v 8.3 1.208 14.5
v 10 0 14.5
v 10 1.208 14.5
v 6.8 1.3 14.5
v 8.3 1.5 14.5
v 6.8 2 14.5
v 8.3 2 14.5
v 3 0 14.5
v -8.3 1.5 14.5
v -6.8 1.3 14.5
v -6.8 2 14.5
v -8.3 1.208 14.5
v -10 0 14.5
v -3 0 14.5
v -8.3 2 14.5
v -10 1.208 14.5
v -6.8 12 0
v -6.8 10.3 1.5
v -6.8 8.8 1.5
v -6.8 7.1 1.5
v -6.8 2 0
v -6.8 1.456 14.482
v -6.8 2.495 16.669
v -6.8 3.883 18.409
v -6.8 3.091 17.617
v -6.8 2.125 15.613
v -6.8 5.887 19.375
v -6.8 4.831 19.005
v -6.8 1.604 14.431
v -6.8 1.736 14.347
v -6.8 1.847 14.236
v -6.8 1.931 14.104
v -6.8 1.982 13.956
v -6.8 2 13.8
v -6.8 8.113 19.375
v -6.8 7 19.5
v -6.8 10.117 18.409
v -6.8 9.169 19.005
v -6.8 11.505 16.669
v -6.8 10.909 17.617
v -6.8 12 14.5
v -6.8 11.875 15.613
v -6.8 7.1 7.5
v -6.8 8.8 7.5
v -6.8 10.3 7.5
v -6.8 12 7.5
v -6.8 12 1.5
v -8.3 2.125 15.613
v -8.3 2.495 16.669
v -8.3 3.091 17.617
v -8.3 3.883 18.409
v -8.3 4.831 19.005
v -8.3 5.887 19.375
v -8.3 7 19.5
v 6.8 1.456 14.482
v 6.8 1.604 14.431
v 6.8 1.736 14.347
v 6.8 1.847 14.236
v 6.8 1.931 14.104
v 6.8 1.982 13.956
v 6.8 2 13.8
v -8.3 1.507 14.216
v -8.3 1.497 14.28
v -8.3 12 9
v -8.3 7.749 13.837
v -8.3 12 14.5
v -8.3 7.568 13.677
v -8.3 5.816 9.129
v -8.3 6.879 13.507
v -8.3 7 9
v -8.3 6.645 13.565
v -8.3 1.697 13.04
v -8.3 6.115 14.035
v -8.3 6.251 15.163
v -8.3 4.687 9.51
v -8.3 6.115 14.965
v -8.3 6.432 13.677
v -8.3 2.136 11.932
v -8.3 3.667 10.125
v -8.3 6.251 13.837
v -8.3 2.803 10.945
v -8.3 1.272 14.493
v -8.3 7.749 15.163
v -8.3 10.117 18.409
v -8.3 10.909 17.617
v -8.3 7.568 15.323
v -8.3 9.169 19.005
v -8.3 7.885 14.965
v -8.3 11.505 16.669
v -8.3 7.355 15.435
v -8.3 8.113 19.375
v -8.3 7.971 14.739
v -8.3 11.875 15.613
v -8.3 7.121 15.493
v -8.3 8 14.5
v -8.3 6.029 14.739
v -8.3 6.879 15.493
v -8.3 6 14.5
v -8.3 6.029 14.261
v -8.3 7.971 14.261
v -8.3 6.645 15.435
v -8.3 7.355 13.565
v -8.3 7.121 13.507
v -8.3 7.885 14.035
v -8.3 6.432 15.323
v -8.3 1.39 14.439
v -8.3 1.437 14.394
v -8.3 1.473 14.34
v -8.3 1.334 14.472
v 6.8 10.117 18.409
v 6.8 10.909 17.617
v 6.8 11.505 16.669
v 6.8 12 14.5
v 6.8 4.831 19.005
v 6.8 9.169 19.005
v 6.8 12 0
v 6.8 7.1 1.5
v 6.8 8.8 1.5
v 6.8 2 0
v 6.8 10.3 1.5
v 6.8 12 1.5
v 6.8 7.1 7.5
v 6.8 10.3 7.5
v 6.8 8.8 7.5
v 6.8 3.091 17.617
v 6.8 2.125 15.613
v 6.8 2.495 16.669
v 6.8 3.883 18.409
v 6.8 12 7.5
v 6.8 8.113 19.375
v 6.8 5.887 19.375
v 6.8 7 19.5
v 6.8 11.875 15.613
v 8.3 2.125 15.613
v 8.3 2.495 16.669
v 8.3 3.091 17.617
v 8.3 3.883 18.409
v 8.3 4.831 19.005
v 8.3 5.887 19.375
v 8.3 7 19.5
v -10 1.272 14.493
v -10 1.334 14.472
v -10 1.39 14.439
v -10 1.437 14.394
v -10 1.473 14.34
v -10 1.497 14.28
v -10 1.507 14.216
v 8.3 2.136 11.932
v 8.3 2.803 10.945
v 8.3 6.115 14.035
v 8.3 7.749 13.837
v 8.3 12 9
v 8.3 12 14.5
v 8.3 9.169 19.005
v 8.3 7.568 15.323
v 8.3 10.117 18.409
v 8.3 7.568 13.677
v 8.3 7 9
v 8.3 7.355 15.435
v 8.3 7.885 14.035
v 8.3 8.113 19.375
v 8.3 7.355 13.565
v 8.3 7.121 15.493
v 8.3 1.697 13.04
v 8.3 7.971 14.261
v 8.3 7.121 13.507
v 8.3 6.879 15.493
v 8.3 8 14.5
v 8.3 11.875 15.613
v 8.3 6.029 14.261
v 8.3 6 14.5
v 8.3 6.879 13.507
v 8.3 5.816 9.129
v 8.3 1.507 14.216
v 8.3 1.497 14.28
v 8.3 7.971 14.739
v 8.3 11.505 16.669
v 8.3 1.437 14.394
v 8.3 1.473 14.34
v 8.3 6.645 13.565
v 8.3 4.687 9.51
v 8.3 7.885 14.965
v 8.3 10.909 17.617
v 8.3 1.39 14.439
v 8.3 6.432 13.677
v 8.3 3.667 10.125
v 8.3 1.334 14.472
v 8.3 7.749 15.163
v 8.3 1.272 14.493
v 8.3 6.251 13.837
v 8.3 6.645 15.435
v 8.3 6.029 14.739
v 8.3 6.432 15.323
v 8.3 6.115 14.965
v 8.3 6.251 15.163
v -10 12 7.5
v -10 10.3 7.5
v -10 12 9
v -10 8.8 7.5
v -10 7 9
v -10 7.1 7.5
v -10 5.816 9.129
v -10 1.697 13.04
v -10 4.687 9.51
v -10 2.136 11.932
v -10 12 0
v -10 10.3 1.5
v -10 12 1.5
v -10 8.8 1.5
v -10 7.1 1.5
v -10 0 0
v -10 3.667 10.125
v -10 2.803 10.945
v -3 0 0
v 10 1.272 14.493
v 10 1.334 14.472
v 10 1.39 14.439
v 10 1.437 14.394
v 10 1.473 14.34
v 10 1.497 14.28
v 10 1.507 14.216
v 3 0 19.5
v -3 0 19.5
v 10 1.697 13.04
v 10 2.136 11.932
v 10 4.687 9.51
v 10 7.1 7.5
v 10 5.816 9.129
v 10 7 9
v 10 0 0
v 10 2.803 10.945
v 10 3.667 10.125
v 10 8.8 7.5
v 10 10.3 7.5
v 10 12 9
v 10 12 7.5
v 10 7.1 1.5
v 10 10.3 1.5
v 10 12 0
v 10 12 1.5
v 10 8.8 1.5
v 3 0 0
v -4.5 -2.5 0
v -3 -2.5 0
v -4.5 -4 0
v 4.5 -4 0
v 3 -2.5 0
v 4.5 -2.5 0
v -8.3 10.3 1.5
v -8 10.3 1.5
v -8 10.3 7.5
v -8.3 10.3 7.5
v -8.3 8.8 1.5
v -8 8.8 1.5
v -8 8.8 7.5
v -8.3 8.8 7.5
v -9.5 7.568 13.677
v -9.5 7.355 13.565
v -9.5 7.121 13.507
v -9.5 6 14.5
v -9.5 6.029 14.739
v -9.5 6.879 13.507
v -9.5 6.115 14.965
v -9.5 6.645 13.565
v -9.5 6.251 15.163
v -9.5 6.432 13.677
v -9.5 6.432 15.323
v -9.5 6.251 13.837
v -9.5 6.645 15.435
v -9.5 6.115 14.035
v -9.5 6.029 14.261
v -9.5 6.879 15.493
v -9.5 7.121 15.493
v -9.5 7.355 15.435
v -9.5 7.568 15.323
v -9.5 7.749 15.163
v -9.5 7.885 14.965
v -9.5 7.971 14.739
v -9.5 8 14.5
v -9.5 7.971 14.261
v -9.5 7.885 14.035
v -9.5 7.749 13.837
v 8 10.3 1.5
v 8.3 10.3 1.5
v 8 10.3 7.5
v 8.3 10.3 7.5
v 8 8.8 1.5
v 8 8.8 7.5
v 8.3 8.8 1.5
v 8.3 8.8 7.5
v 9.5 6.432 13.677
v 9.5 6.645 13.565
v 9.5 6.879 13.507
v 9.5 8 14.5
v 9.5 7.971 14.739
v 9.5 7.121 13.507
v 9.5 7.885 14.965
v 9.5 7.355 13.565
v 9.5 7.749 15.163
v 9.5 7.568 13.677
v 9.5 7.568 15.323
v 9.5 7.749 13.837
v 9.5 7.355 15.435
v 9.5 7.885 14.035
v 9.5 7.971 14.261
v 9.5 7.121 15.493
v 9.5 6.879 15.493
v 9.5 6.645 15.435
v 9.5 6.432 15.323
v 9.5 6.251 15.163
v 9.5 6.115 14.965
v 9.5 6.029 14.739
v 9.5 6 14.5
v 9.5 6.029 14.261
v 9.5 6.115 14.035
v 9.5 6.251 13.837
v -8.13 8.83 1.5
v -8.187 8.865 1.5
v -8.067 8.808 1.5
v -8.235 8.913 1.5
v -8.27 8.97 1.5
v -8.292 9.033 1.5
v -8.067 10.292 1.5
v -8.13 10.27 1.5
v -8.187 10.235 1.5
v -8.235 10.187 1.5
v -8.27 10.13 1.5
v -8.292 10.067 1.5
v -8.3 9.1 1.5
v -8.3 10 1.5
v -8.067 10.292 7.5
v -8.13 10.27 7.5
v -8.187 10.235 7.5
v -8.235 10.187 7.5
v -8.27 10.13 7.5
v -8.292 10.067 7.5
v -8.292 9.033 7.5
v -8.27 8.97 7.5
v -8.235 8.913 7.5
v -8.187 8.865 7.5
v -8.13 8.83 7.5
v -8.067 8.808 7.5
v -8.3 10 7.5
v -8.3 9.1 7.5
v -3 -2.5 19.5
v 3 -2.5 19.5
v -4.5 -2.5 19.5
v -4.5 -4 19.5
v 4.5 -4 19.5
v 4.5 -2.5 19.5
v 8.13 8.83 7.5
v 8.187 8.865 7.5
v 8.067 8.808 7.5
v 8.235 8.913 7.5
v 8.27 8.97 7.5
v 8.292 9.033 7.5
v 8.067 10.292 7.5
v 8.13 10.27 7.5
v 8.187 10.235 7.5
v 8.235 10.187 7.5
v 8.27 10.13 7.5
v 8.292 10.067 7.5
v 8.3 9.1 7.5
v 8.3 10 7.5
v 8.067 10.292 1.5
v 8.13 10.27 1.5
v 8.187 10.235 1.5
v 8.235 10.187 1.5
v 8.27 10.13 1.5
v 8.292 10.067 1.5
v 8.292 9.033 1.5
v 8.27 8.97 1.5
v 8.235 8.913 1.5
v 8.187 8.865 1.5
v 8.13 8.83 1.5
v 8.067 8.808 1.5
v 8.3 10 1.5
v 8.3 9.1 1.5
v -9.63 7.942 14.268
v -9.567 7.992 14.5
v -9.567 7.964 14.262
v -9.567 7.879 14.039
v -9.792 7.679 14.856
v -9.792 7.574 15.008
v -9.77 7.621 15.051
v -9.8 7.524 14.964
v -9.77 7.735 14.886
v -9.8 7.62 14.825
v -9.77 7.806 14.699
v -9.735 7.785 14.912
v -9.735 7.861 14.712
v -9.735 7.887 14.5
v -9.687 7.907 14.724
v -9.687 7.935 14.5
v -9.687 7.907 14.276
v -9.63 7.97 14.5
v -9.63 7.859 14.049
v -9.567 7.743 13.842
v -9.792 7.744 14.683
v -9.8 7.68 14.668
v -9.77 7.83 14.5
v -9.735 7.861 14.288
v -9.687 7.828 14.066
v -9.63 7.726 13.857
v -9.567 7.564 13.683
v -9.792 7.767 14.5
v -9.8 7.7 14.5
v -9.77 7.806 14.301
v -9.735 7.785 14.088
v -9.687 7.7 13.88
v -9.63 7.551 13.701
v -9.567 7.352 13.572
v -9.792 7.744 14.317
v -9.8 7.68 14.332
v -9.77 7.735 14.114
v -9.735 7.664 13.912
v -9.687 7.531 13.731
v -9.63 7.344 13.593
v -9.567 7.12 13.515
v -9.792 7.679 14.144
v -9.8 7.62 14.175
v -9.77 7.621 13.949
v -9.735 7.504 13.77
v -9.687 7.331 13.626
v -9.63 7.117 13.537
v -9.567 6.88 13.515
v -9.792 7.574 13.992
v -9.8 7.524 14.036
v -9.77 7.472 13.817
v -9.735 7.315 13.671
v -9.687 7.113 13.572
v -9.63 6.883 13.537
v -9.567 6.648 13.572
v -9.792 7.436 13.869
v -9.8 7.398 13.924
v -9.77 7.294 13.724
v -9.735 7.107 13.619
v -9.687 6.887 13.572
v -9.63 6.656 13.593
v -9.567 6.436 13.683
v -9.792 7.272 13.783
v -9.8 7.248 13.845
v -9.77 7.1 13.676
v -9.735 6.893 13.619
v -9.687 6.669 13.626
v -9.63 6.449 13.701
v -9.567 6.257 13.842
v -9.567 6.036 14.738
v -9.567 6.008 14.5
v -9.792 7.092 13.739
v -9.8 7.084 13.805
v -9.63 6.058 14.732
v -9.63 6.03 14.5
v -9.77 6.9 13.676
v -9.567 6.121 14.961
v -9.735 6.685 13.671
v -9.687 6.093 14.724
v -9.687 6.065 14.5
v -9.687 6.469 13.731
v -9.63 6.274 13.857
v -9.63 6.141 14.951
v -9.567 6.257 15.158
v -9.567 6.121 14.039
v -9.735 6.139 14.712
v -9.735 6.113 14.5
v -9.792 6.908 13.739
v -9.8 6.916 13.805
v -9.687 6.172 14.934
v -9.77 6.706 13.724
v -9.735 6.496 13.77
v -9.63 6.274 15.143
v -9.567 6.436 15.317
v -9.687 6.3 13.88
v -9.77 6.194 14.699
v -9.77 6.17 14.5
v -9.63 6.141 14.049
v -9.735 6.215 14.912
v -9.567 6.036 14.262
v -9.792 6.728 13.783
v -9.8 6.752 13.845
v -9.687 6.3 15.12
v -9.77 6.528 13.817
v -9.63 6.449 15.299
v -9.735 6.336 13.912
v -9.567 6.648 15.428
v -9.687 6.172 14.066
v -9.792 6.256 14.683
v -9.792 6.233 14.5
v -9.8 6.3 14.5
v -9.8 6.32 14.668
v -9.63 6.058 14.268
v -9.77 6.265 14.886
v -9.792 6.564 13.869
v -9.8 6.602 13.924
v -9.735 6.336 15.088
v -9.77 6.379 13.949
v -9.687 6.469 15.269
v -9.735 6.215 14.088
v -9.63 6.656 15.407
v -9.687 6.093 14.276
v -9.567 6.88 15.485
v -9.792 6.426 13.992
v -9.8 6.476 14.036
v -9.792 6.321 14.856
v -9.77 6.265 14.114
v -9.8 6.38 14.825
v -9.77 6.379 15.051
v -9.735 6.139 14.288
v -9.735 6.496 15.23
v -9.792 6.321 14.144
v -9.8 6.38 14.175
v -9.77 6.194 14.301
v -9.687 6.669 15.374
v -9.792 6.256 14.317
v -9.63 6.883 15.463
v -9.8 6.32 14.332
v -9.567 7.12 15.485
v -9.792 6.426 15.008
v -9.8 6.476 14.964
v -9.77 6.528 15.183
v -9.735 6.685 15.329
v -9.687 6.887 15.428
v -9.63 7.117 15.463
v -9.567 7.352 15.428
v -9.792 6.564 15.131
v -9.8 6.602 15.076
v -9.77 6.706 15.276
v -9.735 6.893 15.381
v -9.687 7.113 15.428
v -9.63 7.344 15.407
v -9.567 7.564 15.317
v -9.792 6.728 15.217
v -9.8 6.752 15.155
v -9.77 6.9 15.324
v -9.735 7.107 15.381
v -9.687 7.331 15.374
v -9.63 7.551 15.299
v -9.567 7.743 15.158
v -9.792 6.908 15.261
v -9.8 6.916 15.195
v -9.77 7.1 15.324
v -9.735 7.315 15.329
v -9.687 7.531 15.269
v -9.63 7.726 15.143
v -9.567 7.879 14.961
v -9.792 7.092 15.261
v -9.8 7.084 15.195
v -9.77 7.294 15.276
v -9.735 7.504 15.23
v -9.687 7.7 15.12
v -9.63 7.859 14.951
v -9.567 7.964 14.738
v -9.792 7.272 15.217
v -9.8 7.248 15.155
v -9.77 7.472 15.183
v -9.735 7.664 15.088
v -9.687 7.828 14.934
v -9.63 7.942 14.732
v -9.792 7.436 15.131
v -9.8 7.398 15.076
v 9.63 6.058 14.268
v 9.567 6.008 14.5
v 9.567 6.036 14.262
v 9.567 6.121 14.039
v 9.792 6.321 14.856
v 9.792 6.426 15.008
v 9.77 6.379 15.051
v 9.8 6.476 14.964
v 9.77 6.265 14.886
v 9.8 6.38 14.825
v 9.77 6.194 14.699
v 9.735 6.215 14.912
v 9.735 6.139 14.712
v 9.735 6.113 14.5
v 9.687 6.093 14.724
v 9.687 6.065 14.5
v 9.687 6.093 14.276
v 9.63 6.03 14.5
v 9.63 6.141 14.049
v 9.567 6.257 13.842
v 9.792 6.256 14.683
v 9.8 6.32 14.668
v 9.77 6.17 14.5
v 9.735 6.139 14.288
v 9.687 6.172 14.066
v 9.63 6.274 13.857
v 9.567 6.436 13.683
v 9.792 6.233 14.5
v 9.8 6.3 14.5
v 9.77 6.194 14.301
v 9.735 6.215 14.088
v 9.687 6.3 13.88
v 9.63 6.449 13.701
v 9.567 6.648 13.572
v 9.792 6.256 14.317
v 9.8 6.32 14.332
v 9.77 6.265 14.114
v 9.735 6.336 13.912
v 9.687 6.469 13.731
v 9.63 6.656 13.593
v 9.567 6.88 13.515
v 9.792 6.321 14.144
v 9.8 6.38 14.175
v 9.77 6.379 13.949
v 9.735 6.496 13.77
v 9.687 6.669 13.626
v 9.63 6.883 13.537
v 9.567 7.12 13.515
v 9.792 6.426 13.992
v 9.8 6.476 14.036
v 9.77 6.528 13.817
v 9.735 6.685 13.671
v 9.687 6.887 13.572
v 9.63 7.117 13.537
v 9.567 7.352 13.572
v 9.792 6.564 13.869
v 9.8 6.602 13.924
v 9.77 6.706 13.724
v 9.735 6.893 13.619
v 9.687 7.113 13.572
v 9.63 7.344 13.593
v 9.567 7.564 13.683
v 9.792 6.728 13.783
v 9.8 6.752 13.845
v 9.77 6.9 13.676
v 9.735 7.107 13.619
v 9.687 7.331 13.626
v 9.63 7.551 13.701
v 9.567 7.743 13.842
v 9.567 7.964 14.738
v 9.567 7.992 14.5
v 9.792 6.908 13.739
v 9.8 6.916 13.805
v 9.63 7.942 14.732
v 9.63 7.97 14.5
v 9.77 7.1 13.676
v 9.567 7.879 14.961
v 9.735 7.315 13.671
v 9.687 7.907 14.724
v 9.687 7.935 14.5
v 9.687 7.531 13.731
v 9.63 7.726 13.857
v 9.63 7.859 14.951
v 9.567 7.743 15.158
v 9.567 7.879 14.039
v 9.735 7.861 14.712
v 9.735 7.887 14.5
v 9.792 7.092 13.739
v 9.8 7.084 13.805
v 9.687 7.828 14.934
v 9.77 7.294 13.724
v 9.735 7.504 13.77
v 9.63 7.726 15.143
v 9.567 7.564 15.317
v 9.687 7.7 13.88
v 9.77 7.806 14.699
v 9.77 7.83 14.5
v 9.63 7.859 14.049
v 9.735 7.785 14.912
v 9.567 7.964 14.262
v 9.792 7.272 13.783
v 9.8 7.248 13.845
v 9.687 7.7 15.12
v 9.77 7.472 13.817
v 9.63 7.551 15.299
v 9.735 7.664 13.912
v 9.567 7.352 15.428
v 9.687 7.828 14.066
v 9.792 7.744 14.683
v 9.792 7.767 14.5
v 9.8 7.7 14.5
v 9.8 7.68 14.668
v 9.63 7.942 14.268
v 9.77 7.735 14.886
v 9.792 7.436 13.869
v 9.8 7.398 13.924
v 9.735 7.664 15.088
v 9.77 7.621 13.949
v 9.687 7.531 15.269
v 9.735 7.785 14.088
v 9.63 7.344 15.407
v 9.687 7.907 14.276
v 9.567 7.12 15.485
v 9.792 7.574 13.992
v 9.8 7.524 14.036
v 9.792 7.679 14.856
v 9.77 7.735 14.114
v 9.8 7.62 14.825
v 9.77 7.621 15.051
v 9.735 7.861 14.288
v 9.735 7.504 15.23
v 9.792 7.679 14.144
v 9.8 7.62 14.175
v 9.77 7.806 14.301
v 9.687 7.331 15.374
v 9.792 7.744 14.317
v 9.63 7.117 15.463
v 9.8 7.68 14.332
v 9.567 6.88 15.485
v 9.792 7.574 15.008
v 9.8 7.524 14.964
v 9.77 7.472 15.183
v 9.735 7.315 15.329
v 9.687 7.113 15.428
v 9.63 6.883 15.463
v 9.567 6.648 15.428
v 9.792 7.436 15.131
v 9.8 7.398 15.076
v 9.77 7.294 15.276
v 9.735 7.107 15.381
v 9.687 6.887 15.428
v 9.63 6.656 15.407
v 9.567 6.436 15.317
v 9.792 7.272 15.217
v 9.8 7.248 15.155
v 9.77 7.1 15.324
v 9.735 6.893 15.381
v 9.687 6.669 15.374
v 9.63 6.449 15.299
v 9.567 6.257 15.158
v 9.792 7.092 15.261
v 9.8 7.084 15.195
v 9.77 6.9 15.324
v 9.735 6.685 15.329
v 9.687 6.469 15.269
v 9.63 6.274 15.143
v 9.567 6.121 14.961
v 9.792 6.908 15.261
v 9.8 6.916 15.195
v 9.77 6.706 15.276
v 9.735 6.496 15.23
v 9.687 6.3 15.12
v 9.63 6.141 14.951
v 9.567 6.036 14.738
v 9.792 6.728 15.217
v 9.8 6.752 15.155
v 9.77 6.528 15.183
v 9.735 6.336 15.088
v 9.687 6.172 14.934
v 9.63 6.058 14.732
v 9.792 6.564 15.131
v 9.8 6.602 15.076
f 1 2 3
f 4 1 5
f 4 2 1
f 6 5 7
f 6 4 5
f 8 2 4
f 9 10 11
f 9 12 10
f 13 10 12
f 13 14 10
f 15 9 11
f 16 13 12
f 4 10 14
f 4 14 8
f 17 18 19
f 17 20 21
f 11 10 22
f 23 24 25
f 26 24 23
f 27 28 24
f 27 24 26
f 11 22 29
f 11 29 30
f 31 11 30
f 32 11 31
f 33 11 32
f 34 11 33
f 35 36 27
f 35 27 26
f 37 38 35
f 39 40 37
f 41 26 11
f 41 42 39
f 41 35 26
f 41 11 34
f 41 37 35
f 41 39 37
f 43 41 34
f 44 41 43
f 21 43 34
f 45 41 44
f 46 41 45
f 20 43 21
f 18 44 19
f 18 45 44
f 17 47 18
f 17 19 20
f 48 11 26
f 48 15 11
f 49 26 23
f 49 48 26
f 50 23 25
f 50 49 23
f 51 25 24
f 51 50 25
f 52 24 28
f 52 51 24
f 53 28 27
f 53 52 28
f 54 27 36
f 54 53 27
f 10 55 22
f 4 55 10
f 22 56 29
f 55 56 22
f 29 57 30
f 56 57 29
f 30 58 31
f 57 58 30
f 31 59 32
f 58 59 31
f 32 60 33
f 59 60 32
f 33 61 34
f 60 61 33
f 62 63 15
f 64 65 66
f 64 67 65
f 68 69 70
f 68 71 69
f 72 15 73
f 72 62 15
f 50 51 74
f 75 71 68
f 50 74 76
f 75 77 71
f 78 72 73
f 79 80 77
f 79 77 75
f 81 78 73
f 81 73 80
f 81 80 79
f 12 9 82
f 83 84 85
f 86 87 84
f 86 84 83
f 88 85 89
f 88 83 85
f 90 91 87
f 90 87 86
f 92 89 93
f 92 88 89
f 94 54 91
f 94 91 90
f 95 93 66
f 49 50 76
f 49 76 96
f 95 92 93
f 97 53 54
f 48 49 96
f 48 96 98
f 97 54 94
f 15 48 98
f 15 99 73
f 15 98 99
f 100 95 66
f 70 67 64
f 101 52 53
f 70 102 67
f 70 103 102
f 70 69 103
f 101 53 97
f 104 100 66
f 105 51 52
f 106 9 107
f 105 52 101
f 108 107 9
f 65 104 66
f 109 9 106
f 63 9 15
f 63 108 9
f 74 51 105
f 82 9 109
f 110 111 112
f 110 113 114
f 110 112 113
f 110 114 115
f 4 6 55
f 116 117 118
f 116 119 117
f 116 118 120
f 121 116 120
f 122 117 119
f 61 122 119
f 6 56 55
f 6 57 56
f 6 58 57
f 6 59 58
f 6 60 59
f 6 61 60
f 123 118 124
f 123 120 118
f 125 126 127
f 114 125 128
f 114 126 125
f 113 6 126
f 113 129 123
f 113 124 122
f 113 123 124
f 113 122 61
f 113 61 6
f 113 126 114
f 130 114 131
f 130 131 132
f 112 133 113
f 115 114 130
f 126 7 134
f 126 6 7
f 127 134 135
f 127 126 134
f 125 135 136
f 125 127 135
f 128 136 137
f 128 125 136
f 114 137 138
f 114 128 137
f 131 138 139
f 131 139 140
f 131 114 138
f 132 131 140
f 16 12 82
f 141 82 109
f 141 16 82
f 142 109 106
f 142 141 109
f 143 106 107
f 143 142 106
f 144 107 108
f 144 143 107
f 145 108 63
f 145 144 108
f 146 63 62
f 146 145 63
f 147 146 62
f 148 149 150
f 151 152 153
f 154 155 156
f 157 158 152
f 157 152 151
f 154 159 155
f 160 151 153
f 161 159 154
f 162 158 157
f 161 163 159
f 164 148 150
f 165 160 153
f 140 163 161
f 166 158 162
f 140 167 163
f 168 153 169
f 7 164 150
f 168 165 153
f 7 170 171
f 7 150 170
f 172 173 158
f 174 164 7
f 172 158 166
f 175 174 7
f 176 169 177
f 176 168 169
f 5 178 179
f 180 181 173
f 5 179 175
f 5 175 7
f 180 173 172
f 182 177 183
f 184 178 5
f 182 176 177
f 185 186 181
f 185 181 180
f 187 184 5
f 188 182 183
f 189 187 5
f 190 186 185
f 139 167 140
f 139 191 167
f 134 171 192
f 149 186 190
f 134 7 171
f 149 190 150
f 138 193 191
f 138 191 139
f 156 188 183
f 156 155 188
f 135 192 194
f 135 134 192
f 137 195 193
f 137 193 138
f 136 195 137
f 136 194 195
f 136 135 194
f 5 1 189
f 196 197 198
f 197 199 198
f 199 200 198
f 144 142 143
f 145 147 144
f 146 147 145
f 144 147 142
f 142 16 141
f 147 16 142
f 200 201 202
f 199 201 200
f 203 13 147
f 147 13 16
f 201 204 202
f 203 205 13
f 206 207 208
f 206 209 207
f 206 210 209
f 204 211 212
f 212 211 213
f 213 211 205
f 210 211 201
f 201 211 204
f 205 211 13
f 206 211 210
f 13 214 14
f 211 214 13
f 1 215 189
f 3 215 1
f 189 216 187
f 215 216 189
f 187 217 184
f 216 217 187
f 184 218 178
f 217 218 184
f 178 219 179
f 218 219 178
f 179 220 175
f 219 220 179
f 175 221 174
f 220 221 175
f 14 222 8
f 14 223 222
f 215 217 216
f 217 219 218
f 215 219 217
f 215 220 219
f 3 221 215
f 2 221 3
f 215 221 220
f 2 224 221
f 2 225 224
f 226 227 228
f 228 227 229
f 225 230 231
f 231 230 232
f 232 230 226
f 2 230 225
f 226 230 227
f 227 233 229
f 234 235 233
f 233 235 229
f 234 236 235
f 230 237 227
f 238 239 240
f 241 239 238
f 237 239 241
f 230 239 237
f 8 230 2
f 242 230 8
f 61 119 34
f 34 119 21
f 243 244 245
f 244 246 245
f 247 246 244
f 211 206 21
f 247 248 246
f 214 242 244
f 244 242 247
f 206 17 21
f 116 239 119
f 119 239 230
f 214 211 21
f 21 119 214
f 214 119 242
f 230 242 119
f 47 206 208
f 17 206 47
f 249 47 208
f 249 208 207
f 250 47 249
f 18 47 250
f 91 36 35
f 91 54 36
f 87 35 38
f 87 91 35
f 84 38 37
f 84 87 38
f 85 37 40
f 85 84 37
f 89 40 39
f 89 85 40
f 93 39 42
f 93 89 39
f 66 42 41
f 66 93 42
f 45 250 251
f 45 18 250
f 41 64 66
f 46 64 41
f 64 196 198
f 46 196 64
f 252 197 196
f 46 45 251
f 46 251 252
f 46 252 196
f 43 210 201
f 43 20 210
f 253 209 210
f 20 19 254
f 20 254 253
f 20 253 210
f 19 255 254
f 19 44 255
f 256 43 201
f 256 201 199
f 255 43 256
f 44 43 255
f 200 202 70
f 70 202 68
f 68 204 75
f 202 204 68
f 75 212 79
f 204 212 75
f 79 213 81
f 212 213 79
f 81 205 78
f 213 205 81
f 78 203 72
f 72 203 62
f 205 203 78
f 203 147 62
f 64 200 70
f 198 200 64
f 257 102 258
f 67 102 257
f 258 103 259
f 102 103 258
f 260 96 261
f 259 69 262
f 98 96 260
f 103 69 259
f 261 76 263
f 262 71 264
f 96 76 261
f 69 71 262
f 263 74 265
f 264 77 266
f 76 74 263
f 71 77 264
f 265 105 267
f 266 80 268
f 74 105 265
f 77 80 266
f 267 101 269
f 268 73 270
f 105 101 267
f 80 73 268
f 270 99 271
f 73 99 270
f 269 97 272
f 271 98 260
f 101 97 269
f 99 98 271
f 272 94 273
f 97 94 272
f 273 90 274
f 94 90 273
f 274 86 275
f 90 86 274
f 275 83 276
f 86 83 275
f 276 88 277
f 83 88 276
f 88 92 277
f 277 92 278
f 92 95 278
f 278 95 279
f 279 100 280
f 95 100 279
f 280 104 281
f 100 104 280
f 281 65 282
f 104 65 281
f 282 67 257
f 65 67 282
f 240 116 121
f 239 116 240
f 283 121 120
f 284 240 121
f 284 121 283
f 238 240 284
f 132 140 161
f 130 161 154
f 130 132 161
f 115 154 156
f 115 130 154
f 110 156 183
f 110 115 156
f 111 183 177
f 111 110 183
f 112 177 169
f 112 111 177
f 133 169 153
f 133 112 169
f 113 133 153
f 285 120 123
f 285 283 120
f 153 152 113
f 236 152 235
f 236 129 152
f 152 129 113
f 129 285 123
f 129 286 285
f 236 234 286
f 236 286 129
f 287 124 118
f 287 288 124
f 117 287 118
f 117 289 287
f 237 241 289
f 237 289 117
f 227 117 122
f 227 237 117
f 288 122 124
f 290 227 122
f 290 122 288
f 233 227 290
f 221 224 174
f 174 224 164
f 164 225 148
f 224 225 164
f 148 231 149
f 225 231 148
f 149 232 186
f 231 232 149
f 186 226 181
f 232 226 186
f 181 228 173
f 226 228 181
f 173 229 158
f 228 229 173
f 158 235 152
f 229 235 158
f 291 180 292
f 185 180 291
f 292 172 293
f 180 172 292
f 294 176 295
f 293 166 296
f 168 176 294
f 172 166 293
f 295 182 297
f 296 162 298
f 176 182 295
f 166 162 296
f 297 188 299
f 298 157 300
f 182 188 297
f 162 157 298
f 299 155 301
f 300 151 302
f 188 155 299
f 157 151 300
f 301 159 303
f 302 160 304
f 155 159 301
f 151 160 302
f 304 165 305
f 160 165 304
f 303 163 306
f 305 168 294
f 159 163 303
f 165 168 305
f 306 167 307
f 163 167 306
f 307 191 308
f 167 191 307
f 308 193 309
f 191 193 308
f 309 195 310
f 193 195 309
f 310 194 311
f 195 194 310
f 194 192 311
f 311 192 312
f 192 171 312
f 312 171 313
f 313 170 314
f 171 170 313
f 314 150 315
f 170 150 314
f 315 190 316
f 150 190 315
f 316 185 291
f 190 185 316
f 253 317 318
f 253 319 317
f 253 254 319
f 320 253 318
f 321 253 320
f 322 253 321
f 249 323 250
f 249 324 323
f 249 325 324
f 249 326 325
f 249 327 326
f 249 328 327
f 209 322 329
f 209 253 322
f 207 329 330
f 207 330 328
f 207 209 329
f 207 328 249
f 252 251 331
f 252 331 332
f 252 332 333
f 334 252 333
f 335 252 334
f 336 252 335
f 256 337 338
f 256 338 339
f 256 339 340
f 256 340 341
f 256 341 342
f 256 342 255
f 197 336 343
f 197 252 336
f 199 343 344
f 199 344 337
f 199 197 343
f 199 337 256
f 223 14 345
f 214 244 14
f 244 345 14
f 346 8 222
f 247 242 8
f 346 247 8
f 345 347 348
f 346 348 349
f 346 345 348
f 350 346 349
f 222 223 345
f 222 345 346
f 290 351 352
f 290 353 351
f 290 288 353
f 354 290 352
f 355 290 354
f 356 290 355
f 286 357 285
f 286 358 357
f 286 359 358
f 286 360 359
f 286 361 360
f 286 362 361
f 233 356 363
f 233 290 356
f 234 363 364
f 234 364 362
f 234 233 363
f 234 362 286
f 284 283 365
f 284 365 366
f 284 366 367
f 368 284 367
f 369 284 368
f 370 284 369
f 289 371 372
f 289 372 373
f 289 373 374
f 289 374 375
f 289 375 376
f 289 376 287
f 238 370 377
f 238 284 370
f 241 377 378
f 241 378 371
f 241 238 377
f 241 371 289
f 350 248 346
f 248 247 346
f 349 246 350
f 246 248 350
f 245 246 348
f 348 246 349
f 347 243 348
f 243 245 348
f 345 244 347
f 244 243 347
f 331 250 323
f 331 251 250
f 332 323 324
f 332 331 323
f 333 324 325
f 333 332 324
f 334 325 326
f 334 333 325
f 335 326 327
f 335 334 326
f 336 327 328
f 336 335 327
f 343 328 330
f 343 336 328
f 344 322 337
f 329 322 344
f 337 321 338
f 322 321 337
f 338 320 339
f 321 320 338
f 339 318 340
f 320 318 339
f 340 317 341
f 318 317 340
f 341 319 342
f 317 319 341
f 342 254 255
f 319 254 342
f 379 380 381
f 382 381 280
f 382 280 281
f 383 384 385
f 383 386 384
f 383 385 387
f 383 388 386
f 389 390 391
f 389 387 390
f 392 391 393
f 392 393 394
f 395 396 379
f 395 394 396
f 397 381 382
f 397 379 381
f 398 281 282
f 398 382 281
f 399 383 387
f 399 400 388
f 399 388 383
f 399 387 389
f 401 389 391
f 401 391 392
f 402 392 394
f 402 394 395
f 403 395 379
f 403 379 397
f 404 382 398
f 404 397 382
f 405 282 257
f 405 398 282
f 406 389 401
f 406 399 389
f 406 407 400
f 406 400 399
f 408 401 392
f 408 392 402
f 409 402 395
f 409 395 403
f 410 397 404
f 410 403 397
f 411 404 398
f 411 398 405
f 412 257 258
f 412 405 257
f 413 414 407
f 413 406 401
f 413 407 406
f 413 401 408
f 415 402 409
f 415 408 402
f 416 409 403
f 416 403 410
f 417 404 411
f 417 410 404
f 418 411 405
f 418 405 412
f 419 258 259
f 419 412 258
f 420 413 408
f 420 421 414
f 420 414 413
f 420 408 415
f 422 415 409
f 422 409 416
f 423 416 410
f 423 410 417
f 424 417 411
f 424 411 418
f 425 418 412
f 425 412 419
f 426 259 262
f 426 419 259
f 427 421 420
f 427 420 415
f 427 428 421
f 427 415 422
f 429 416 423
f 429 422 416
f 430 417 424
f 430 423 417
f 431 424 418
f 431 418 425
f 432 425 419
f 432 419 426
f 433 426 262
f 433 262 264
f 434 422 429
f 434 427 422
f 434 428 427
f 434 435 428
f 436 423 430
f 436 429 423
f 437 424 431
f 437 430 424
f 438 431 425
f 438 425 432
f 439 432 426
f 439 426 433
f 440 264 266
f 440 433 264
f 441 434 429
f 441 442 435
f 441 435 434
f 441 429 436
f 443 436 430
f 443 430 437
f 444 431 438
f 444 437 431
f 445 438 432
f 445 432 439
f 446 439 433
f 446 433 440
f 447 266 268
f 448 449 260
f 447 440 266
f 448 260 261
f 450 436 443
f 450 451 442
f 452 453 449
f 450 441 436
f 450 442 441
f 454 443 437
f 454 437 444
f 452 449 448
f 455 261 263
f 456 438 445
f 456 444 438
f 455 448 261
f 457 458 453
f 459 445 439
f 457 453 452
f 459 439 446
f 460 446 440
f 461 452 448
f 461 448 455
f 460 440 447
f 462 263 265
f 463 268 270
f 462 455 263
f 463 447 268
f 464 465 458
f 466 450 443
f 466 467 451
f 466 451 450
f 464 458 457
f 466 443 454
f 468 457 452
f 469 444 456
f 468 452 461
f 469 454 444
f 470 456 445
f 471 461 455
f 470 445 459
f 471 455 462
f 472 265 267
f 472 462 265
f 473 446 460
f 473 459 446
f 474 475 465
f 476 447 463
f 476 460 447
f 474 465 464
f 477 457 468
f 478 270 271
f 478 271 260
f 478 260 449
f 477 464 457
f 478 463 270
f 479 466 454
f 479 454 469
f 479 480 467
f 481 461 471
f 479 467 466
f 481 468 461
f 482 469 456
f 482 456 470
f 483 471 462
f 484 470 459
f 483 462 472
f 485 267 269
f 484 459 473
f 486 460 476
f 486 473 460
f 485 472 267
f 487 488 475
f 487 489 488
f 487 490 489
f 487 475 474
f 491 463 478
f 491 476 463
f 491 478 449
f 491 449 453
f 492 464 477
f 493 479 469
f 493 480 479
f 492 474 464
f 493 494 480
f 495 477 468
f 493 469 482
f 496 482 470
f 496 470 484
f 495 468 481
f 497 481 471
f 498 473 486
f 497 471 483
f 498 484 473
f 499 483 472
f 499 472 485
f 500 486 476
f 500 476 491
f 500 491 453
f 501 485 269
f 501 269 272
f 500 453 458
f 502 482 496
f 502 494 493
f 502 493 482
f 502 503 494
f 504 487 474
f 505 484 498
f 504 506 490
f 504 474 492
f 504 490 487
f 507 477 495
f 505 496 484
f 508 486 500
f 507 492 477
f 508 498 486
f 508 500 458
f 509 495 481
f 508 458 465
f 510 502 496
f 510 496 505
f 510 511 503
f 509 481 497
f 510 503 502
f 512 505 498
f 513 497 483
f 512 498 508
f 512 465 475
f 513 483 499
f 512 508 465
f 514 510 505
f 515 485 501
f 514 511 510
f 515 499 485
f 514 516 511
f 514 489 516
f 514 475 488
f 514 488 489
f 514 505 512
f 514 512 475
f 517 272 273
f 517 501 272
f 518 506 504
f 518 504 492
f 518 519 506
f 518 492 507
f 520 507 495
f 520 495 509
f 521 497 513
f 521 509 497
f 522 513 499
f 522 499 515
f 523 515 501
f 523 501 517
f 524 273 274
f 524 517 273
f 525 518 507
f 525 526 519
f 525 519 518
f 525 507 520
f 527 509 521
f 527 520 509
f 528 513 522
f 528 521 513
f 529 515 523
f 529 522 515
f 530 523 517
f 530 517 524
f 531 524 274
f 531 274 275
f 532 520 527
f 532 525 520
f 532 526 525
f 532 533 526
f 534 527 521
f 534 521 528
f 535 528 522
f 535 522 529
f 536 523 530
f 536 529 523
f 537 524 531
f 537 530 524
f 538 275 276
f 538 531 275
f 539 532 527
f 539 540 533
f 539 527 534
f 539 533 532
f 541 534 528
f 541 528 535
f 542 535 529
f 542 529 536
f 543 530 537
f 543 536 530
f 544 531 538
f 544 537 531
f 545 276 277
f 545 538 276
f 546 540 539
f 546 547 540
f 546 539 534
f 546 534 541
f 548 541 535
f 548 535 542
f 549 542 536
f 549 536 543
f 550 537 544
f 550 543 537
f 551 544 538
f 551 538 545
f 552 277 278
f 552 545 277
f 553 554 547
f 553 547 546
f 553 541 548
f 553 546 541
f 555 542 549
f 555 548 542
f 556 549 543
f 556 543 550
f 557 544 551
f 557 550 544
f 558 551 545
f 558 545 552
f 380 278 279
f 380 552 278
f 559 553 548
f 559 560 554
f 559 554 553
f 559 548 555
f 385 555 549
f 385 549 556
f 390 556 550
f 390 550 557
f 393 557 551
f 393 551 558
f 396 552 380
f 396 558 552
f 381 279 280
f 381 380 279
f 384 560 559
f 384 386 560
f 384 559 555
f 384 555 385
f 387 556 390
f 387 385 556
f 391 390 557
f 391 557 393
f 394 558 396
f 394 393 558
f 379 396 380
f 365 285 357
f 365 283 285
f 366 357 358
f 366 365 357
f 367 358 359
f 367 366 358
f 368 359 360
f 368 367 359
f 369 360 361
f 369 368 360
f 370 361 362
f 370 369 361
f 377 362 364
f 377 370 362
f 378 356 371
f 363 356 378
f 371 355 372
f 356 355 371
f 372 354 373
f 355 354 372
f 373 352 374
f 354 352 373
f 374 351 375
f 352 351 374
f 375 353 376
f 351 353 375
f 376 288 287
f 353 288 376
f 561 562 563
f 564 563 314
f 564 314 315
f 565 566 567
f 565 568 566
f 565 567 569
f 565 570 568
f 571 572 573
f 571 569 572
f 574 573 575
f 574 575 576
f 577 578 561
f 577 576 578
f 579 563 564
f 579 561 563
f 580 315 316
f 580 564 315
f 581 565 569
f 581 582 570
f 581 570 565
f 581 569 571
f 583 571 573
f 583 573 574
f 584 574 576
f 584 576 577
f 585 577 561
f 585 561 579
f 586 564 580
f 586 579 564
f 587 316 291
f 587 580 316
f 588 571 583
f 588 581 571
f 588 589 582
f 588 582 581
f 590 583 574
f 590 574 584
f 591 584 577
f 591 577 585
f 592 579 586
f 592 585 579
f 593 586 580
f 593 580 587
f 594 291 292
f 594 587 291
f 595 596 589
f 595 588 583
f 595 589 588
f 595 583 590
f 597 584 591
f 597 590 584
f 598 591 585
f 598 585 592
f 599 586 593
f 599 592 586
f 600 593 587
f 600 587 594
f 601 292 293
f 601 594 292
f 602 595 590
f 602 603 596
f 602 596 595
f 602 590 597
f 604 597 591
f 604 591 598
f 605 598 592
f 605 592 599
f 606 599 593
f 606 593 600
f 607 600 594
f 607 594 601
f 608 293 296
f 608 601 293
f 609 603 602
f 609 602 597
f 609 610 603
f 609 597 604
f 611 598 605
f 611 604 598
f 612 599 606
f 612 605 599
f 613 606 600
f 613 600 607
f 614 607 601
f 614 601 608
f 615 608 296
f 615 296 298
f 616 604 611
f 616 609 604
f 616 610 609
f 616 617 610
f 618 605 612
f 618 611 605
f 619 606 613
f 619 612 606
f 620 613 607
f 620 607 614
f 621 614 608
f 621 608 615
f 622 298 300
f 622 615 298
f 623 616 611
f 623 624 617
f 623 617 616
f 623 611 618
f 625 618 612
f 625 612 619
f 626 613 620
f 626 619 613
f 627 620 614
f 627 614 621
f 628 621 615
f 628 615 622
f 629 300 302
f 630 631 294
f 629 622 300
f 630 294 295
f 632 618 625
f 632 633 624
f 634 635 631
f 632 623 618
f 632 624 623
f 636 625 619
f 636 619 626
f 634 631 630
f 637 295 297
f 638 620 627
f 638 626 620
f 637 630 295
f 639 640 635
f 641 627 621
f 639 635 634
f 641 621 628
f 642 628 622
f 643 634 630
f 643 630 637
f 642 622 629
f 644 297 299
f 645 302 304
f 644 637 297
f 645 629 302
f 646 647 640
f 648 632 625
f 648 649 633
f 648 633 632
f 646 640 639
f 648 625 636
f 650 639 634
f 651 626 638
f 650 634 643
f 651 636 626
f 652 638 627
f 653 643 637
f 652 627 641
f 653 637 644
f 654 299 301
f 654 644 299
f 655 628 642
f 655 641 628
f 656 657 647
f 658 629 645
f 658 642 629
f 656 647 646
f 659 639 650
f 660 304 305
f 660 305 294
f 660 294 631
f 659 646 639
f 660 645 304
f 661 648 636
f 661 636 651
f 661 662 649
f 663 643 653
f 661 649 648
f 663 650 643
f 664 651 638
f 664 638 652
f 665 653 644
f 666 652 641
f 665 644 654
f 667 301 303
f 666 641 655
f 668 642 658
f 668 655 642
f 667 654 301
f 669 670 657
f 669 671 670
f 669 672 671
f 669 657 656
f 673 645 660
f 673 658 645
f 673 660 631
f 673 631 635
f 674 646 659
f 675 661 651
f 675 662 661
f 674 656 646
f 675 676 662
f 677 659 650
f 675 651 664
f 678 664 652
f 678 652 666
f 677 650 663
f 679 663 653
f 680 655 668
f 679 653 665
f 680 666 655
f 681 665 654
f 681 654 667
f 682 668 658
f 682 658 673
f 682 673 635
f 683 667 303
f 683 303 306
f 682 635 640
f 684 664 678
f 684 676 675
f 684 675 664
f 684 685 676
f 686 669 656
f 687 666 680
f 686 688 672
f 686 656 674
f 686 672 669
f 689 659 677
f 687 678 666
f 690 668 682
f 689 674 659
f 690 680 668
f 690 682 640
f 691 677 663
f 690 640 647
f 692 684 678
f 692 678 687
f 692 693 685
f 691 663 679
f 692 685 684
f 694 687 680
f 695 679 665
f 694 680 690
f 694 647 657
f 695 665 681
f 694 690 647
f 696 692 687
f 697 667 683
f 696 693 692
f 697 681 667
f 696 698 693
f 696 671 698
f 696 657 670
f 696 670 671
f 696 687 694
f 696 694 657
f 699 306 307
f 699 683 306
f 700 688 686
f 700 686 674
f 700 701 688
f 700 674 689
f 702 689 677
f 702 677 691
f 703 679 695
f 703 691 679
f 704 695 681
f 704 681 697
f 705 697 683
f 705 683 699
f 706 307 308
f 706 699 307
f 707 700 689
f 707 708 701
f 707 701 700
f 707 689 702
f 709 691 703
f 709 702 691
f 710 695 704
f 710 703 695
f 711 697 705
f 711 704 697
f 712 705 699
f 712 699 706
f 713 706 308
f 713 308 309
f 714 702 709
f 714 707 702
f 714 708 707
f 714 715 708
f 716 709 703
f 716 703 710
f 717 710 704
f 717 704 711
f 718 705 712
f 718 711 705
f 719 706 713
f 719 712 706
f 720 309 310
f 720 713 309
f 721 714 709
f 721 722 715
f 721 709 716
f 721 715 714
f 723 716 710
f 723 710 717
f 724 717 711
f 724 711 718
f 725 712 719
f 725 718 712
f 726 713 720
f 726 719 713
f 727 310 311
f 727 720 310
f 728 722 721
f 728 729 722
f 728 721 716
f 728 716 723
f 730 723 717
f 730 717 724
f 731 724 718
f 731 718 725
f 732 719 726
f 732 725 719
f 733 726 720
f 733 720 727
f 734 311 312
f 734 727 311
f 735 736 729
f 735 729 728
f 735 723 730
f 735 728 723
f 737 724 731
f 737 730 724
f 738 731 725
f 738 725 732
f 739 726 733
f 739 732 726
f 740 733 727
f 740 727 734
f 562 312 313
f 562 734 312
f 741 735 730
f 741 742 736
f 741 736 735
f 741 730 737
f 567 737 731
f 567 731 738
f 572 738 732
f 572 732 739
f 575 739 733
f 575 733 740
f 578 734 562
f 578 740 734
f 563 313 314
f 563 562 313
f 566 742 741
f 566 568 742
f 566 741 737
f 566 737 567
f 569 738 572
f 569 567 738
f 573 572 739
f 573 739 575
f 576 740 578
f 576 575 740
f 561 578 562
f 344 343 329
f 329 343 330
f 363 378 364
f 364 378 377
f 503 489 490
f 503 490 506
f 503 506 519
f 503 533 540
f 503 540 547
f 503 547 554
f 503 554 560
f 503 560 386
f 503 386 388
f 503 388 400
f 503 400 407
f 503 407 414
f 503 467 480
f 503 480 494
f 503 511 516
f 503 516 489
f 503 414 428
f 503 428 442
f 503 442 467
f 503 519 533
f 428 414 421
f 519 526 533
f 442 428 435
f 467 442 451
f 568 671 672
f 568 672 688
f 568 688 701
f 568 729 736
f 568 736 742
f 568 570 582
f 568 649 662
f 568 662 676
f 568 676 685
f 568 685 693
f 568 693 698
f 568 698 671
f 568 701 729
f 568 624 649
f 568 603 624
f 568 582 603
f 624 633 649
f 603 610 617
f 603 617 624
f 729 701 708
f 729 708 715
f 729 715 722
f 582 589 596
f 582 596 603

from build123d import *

# Parameters (mm, degrees)
PAD_DEPTH       = 19.5
SKETCH001_W     = 13.6
SKETCH001_H     = 19.5
POCKET_DEPTH    = 10
POCKET001_DEPTH = 20
POCKET002_DEPTH = 1.7
POCKET003_DEPTH = 1.7
SKETCH005_R     = 1
PAD001_DEPTH    = 1.5
FILLET_R        = 0.3
SKETCH006_R     = 1
PAD002_DEPTH    = 1.5
FILLET001_R     = 0.3
SKETCH007_W     = 1.7
SKETCH007_H     = 6
POCKET004_DEPTH = 20
SKETCH008_W     = 1.7
SKETCH008_H     = 6
POCKET005_DEPTH = 20
SKETCH009_W     = 1.5
SKETCH009_H     = 6
POCKET006_DEPTH = 1.7
FILLET002_R     = 0.3
FILLET003_R     = 0.3
SKETCH010_W     = 1.5
SKETCH010_H     = 6
POCKET007_DEPTH = 1.7
FILLET004_R     = 0.3
FILLET005_R     = 0.3
FILLET006_R     = 0.3
FILLET007_R     = 0.3
FILLET008_R     = 0.7


with BuildPart() as part:
    # Sketch → Pad (new body)
    with BuildSketch(Plane.XY):
        Polygon((-3, 0), (-3, -2.5), (-4.5, -2.5), (-4.5, -4), (4.5, -4), (4.5, -2.5), (3, -2.5), (3, 0), (10, 0), (10, 12), (-10, 12), (-10, 0), align=None)
    extrude(amount=PAD_DEPTH)

    # Sketch001 (on Face10 of Pad) → Pocket (cut)
    with BuildSketch(Plane(origin=(0, 12, 0), x_dir=(-1, 0, 0), z_dir=(0, 1, 0))):
        with Locations((0, 9.75)):
            Rectangle(SKETCH001_W, SKETCH001_H)
    extrude(amount=-POCKET_DEPTH, mode=Mode.SUBTRACT)

    # Sketch002 (on Face6 of Pocket) → Pocket001 (cut)
    with BuildSketch(Plane(origin=(-10, 0, 0), x_dir=(0, -1, 0), z_dir=(-1, 0, 0))):
        with BuildLine():
            ThreePointArc((-2, 14.500024), (-7.000024, 19.5), (-12, 14.499976))
            Line((-12, 14.499976), (-12, 20.5))
            Line((-12, 20.5), (0, 20.5))
            Line((0, 20.5), (0, 14.500024))
            Line((0, 14.500024), (-2, 14.500024))
        make_face()
    extrude(amount=-POCKET001_DEPTH, mode=Mode.SUBTRACT)

    # Sketch003 (on Face8 of Pocket001) → Pocket002 (cut)
    with BuildSketch(Plane(origin=(-10, 0, 0), x_dir=(0, -1, 0), z_dir=(-1, 0, 0))):
        with BuildLine():
            ThreePointArc((-6.999976, 9), (-3.110929, 18.389104), (-12.5, 14.499976))
            Line((-12.5, 14.499976), (-12.5, 9))
            Line((-12.5, 9), (-6.999976, 9))
        make_face()
    extrude(amount=-POCKET002_DEPTH, mode=Mode.SUBTRACT)

    # Sketch004 (on Face14 of Pocket002) → Pocket003 (cut)
    with BuildSketch(Plane.YZ.offset(10)):
        with BuildLine():
            ThreePointArc((12.5, 14.499976), (3.110929, 18.389104), (6.999976, 9))
            Line((12.5, 9), (6.999976, 9))
            Line((12.5, 14.499976), (12.5, 9))
        make_face()
    extrude(amount=-POCKET003_DEPTH, mode=Mode.SUBTRACT)

    # Sketch005 (on Face25 of Pocket003) → Pad001 (join)
    with BuildSketch(Plane.YZ.offset(8.3)):
        with Locations((7, 14.5)):
            Circle(SKETCH005_R)
    extrude(amount=PAD001_DEPTH)

    # Fillet
    fillet_edges = [part.edges().sort_by_distance(p)[0] for p in [
        (9.8, 6, 14.5),
    ]]
    fillet(fillet_edges, radius=FILLET_R)

    # Sketch006 (on Face13 of Fillet) → Pad002 (join)
    with BuildSketch(Plane(origin=(-8.3, 0, 0), x_dir=(0, -1, 0), z_dir=(-1, 0, 0))):
        with Locations((-7, 14.5)):
            Circle(SKETCH006_R)
    extrude(amount=PAD002_DEPTH)

    # Fillet001
    fillet001_edges = [part.edges().sort_by_distance(p)[0] for p in [
        (-9.8, 8, 14.5),
    ]]
    fillet(fillet001_edges, radius=FILLET001_R)

    # Sketch007 (on Face18 of Fillet001) → Pocket004 (cut)
    with BuildSketch(Plane.YZ.offset(10)):
        with Locations((11.15, 4.5)):
            Rectangle(SKETCH007_W, SKETCH007_H)
    extrude(amount=-POCKET004_DEPTH, mode=Mode.SUBTRACT)

    # Sketch008 (on Face18 of Pocket004) → Pocket005 (cut)
    with BuildSketch(Plane.YZ.offset(10)):
        with Locations((7.95, 4.5)):
            Rectangle(SKETCH008_W, SKETCH008_H)
    extrude(amount=-POCKET005_DEPTH, mode=Mode.SUBTRACT)

    # Sketch009 (on Face18 of Pocket005) → Pocket006 (cut)
    with BuildSketch(Plane.YZ.offset(10)):
        with Locations((9.55, 4.5)):
            Rectangle(SKETCH009_W, SKETCH009_H)
    extrude(amount=-POCKET006_DEPTH, mode=Mode.SUBTRACT)

    # Fillet002
    fillet002_edges = [part.edges().sort_by_distance(p)[0] for p in [
        (8.3, 10.3, 4.5),
    ]]
    fillet(fillet002_edges, radius=FILLET002_R)

    # Fillet003
    fillet003_edges = [part.edges().sort_by_distance(p)[0] for p in [
        (8.3, 8.8, 4.5),
    ]]
    fillet(fillet003_edges, radius=FILLET003_R)

    # Sketch010 (on Face26 of Fillet003) → Pocket007 (cut)
    with BuildSketch(Plane(origin=(-10, 0, 0), x_dir=(0, -1, 0), z_dir=(-1, 0, 0))):
        with Locations((-9.55, 4.5)):
            Rectangle(SKETCH010_W, SKETCH010_H)
    extrude(amount=-POCKET007_DEPTH, mode=Mode.SUBTRACT)

    # Fillet004
    fillet004_edges = [part.edges().sort_by_distance(p)[0] for p in [
        (-8.3, 10.3, 4.5),
    ]]
    fillet(fillet004_edges, radius=FILLET004_R)

    # Fillet005
    fillet005_edges = [part.edges().sort_by_distance(p)[0] for p in [
        (-8.3, 8.8, 4.5),
    ]]
    fillet(fillet005_edges, radius=FILLET005_R)

    # Fillet006
    fillet006_edges = [part.edges().sort_by_distance(p)[0] for p in [
        (-9.15, 1.5, 14.500024),
    ]]
    fillet(fillet006_edges, radius=FILLET006_R)

    # Fillet007
    fillet007_edges = [part.edges().sort_by_distance(p)[0] for p in [
        (9.15, 1.5, 14.500024),
    ]]
    fillet(fillet007_edges, radius=FILLET007_R)

    # Fillet008
    fillet008_edges = [part.edges().sort_by_distance(p)[0] for p in [
        (0, 2, 14.500024),
    ]]
    fillet(fillet008_edges, radius=FILLET008_R)


solid = part.part
